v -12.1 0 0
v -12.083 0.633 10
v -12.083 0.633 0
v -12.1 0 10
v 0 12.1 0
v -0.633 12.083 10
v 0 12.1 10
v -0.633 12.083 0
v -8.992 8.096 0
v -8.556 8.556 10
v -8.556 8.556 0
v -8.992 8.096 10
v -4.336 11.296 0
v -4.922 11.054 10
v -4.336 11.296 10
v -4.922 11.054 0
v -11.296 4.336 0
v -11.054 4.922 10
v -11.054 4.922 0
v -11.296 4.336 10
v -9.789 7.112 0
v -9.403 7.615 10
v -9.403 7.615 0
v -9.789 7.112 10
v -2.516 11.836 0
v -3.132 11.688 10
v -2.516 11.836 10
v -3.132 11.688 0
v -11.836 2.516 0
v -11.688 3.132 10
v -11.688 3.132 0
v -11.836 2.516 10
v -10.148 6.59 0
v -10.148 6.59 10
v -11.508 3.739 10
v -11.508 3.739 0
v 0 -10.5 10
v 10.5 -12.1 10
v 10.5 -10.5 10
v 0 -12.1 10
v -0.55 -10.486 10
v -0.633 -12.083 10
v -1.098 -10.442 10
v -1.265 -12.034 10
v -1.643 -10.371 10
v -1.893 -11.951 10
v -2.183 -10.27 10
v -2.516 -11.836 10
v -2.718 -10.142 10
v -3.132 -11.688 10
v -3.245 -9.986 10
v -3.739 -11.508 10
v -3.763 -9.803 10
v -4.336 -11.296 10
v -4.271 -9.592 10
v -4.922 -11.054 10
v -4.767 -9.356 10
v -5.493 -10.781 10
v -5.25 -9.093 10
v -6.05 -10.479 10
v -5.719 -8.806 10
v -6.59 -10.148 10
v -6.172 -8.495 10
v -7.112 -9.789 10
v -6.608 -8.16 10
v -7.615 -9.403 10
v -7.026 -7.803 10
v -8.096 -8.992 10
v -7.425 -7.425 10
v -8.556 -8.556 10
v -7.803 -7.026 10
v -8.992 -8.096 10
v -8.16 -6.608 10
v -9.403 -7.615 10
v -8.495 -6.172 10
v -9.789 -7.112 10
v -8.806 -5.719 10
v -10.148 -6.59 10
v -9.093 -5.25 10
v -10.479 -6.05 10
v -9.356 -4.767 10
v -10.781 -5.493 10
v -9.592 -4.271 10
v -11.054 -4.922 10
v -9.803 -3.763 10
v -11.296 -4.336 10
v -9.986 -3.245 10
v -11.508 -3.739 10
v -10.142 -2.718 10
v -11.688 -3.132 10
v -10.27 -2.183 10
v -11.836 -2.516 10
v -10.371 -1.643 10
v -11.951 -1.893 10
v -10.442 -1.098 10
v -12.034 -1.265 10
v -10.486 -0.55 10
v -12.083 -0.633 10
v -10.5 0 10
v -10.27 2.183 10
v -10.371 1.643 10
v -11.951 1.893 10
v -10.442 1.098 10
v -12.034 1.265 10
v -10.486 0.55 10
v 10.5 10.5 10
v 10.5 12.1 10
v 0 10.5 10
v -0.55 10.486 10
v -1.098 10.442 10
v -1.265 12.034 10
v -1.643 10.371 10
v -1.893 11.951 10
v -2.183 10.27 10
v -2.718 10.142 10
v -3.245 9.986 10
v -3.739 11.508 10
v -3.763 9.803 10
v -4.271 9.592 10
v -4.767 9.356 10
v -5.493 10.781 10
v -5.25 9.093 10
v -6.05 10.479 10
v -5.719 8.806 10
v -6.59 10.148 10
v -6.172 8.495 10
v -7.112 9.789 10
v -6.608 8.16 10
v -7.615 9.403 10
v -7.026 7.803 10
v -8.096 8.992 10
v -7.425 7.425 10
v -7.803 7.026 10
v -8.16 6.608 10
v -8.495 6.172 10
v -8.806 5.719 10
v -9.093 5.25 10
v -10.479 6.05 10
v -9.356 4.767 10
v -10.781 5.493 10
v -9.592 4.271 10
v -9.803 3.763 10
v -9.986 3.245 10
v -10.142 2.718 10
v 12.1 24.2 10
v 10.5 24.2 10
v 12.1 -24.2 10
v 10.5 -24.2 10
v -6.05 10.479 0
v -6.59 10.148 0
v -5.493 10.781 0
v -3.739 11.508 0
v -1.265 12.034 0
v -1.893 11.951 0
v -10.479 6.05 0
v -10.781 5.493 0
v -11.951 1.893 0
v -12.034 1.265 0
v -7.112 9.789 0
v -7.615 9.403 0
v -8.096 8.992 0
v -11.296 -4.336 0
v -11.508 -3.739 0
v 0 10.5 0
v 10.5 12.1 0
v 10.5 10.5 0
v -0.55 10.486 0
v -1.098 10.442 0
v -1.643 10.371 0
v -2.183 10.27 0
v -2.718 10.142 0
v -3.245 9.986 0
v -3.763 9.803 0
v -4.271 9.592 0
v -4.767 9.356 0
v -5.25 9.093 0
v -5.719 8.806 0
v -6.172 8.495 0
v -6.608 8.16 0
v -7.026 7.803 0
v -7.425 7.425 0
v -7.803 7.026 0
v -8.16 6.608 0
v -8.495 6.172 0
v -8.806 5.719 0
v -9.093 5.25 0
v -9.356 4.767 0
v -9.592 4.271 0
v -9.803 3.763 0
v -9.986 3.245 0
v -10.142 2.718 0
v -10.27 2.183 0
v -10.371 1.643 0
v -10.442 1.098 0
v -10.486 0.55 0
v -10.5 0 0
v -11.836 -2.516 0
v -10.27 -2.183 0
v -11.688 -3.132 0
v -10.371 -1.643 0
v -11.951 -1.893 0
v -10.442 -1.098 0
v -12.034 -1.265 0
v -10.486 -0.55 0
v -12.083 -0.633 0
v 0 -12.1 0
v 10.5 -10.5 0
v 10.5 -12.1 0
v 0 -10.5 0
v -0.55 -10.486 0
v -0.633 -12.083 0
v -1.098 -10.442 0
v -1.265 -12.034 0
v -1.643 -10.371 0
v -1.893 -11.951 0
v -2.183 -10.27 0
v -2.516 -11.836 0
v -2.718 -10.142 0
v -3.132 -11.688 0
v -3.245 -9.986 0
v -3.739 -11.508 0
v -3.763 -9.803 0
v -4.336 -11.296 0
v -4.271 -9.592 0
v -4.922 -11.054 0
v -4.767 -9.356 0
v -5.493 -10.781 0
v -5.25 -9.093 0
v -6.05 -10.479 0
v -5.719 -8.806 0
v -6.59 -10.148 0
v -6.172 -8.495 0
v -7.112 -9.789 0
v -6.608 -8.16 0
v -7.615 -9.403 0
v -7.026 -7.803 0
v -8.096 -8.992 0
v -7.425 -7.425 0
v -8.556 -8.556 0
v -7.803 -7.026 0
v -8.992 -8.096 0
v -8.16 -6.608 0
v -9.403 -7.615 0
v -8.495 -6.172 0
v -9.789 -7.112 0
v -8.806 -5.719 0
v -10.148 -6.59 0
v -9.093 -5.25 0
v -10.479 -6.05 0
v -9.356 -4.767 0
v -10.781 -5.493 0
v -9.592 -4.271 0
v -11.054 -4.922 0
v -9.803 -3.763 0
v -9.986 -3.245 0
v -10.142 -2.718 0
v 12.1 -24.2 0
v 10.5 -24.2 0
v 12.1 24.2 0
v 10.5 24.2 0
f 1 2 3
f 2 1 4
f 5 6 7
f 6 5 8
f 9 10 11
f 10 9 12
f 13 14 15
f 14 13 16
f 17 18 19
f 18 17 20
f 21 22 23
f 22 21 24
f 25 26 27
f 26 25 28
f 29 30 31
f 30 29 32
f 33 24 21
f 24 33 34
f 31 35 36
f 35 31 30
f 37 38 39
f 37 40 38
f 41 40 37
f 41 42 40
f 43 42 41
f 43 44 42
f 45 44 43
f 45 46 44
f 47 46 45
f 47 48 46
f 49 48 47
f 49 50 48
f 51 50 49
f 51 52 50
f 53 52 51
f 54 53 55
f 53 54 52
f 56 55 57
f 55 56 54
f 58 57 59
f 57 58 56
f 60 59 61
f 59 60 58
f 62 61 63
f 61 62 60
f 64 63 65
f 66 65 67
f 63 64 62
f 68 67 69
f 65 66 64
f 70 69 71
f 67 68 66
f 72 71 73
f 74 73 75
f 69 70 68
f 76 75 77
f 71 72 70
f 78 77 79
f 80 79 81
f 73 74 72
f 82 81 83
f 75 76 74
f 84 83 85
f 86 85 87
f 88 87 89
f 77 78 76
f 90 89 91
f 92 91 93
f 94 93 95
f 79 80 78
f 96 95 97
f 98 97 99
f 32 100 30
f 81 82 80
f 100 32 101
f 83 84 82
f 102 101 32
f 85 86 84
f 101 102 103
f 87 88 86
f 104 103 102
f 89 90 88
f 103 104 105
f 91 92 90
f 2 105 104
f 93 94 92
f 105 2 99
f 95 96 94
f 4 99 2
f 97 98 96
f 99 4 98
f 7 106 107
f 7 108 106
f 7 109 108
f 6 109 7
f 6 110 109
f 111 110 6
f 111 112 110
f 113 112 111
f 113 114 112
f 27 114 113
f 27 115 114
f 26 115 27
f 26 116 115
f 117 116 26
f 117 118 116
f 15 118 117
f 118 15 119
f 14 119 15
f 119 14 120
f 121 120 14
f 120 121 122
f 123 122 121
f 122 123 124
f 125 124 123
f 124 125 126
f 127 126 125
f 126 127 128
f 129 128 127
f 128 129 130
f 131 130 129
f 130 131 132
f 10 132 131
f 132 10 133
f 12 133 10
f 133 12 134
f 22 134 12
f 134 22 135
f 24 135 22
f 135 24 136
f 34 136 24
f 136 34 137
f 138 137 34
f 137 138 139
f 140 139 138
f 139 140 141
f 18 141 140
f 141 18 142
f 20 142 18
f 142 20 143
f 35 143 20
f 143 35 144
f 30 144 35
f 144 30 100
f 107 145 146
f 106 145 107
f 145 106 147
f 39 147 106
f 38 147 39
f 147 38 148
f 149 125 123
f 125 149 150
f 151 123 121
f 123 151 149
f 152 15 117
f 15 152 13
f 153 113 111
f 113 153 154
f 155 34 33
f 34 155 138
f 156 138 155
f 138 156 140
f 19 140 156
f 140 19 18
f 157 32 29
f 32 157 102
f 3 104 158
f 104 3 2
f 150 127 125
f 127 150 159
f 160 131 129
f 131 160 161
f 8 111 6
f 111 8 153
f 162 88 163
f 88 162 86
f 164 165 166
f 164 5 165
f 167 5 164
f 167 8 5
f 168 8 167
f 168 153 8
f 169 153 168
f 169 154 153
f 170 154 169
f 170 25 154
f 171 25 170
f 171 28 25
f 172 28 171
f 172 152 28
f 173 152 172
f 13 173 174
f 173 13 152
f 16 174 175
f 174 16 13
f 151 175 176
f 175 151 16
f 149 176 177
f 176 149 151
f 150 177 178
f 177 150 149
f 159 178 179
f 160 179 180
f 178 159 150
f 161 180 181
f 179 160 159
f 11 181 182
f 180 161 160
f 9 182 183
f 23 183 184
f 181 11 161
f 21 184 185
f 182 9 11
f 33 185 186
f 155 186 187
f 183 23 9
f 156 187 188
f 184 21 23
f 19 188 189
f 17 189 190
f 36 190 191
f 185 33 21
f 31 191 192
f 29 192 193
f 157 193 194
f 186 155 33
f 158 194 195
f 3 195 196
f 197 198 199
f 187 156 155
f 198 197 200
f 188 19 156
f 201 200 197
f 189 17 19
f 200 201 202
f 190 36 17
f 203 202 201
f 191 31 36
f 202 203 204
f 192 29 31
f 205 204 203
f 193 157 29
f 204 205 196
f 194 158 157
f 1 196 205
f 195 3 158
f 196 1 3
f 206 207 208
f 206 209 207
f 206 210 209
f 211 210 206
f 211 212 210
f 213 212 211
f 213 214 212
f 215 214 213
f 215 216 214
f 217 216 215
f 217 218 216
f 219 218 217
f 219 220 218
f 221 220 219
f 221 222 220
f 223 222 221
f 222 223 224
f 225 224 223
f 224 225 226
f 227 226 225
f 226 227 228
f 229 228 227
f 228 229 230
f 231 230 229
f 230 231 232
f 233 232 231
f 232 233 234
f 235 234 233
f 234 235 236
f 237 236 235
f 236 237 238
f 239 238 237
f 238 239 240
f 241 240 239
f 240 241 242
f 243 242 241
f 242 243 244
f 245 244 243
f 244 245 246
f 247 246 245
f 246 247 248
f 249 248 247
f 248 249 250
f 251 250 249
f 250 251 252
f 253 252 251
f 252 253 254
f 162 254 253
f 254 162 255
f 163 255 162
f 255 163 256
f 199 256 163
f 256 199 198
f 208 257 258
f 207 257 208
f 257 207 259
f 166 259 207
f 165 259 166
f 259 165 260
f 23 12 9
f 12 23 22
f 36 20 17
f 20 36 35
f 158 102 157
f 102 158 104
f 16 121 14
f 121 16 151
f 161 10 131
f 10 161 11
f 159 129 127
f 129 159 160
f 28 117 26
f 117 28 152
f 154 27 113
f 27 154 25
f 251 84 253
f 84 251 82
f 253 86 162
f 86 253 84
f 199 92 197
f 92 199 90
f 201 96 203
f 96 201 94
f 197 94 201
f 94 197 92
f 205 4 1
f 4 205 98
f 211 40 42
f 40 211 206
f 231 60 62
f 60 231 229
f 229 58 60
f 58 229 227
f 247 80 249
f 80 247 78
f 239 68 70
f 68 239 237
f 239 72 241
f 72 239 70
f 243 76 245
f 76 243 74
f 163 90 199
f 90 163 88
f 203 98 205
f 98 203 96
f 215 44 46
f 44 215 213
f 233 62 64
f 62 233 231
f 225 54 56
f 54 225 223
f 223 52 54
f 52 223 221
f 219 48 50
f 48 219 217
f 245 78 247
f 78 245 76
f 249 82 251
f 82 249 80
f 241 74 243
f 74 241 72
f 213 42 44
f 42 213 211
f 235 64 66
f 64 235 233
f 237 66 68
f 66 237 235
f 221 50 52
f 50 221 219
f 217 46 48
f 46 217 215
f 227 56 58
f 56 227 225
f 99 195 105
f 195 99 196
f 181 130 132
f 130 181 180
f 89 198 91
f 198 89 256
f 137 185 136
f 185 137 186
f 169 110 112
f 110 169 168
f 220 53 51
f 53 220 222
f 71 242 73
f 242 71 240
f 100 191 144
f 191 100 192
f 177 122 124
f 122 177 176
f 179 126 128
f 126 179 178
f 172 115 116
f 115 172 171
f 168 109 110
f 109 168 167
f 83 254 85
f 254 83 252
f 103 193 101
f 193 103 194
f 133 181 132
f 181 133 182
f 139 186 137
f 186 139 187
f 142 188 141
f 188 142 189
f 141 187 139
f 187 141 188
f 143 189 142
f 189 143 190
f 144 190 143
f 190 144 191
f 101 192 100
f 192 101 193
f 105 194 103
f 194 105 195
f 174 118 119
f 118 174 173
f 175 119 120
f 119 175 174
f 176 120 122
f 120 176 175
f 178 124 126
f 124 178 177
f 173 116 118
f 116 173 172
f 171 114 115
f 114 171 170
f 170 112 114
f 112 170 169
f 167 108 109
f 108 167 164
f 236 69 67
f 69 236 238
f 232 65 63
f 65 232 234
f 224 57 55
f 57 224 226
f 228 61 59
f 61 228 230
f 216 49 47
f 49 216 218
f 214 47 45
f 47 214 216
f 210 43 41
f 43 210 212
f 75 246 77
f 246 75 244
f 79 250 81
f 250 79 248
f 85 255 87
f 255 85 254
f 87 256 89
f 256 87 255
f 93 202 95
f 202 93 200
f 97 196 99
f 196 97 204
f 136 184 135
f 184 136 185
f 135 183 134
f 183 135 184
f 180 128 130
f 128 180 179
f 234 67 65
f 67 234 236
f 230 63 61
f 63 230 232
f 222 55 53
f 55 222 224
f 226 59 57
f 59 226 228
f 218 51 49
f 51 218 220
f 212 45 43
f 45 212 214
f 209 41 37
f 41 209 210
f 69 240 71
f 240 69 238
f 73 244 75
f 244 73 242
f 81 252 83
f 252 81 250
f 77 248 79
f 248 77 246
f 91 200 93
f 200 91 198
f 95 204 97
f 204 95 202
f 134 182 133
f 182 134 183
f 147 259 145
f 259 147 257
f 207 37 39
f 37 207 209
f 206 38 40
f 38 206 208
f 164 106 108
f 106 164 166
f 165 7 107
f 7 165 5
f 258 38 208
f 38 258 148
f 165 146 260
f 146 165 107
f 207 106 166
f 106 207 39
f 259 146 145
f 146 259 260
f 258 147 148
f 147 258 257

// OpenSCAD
// Syringe holder
// RealGusi (C) 2020
// https://maniana.net
// Creative Commons - Attribution - Non-Commercial - Share Alike license.

$fn = 120;

// Modify those 3 variables to adjust a proper size
// Below are ok for 10ml syringe
$diameter_inner = 21;
$wall_thickness = 1.6;
$height = 10;

$diameter_outer = $diameter_inner + $wall_thickness * 2;



difference() {
    cylinder( h = $height, r = $diameter_outer/ 2);
    cylinder( h = $height, r = $diameter_inner / 2);
    translate( [ 0, -$diameter_outer / 2, 0]) 
    cube( [ $diameter_outer / 2, $diameter_outer, $height]);
}

translate( [ 0, -$diameter_outer / 2, 0])
cube( [ $diameter_outer / 2, $wall_thickness, $height]);

translate( [ 0, $diameter_outer / 2 - $wall_thickness, 0])
cube( [ $diameter_outer / 2, $wall_thickness, $height]);

translate( [ $diameter_inner / 2, - $diameter_outer , 0])
cube( [ $wall_thickness, $diameter_outer * 2, $height]);
